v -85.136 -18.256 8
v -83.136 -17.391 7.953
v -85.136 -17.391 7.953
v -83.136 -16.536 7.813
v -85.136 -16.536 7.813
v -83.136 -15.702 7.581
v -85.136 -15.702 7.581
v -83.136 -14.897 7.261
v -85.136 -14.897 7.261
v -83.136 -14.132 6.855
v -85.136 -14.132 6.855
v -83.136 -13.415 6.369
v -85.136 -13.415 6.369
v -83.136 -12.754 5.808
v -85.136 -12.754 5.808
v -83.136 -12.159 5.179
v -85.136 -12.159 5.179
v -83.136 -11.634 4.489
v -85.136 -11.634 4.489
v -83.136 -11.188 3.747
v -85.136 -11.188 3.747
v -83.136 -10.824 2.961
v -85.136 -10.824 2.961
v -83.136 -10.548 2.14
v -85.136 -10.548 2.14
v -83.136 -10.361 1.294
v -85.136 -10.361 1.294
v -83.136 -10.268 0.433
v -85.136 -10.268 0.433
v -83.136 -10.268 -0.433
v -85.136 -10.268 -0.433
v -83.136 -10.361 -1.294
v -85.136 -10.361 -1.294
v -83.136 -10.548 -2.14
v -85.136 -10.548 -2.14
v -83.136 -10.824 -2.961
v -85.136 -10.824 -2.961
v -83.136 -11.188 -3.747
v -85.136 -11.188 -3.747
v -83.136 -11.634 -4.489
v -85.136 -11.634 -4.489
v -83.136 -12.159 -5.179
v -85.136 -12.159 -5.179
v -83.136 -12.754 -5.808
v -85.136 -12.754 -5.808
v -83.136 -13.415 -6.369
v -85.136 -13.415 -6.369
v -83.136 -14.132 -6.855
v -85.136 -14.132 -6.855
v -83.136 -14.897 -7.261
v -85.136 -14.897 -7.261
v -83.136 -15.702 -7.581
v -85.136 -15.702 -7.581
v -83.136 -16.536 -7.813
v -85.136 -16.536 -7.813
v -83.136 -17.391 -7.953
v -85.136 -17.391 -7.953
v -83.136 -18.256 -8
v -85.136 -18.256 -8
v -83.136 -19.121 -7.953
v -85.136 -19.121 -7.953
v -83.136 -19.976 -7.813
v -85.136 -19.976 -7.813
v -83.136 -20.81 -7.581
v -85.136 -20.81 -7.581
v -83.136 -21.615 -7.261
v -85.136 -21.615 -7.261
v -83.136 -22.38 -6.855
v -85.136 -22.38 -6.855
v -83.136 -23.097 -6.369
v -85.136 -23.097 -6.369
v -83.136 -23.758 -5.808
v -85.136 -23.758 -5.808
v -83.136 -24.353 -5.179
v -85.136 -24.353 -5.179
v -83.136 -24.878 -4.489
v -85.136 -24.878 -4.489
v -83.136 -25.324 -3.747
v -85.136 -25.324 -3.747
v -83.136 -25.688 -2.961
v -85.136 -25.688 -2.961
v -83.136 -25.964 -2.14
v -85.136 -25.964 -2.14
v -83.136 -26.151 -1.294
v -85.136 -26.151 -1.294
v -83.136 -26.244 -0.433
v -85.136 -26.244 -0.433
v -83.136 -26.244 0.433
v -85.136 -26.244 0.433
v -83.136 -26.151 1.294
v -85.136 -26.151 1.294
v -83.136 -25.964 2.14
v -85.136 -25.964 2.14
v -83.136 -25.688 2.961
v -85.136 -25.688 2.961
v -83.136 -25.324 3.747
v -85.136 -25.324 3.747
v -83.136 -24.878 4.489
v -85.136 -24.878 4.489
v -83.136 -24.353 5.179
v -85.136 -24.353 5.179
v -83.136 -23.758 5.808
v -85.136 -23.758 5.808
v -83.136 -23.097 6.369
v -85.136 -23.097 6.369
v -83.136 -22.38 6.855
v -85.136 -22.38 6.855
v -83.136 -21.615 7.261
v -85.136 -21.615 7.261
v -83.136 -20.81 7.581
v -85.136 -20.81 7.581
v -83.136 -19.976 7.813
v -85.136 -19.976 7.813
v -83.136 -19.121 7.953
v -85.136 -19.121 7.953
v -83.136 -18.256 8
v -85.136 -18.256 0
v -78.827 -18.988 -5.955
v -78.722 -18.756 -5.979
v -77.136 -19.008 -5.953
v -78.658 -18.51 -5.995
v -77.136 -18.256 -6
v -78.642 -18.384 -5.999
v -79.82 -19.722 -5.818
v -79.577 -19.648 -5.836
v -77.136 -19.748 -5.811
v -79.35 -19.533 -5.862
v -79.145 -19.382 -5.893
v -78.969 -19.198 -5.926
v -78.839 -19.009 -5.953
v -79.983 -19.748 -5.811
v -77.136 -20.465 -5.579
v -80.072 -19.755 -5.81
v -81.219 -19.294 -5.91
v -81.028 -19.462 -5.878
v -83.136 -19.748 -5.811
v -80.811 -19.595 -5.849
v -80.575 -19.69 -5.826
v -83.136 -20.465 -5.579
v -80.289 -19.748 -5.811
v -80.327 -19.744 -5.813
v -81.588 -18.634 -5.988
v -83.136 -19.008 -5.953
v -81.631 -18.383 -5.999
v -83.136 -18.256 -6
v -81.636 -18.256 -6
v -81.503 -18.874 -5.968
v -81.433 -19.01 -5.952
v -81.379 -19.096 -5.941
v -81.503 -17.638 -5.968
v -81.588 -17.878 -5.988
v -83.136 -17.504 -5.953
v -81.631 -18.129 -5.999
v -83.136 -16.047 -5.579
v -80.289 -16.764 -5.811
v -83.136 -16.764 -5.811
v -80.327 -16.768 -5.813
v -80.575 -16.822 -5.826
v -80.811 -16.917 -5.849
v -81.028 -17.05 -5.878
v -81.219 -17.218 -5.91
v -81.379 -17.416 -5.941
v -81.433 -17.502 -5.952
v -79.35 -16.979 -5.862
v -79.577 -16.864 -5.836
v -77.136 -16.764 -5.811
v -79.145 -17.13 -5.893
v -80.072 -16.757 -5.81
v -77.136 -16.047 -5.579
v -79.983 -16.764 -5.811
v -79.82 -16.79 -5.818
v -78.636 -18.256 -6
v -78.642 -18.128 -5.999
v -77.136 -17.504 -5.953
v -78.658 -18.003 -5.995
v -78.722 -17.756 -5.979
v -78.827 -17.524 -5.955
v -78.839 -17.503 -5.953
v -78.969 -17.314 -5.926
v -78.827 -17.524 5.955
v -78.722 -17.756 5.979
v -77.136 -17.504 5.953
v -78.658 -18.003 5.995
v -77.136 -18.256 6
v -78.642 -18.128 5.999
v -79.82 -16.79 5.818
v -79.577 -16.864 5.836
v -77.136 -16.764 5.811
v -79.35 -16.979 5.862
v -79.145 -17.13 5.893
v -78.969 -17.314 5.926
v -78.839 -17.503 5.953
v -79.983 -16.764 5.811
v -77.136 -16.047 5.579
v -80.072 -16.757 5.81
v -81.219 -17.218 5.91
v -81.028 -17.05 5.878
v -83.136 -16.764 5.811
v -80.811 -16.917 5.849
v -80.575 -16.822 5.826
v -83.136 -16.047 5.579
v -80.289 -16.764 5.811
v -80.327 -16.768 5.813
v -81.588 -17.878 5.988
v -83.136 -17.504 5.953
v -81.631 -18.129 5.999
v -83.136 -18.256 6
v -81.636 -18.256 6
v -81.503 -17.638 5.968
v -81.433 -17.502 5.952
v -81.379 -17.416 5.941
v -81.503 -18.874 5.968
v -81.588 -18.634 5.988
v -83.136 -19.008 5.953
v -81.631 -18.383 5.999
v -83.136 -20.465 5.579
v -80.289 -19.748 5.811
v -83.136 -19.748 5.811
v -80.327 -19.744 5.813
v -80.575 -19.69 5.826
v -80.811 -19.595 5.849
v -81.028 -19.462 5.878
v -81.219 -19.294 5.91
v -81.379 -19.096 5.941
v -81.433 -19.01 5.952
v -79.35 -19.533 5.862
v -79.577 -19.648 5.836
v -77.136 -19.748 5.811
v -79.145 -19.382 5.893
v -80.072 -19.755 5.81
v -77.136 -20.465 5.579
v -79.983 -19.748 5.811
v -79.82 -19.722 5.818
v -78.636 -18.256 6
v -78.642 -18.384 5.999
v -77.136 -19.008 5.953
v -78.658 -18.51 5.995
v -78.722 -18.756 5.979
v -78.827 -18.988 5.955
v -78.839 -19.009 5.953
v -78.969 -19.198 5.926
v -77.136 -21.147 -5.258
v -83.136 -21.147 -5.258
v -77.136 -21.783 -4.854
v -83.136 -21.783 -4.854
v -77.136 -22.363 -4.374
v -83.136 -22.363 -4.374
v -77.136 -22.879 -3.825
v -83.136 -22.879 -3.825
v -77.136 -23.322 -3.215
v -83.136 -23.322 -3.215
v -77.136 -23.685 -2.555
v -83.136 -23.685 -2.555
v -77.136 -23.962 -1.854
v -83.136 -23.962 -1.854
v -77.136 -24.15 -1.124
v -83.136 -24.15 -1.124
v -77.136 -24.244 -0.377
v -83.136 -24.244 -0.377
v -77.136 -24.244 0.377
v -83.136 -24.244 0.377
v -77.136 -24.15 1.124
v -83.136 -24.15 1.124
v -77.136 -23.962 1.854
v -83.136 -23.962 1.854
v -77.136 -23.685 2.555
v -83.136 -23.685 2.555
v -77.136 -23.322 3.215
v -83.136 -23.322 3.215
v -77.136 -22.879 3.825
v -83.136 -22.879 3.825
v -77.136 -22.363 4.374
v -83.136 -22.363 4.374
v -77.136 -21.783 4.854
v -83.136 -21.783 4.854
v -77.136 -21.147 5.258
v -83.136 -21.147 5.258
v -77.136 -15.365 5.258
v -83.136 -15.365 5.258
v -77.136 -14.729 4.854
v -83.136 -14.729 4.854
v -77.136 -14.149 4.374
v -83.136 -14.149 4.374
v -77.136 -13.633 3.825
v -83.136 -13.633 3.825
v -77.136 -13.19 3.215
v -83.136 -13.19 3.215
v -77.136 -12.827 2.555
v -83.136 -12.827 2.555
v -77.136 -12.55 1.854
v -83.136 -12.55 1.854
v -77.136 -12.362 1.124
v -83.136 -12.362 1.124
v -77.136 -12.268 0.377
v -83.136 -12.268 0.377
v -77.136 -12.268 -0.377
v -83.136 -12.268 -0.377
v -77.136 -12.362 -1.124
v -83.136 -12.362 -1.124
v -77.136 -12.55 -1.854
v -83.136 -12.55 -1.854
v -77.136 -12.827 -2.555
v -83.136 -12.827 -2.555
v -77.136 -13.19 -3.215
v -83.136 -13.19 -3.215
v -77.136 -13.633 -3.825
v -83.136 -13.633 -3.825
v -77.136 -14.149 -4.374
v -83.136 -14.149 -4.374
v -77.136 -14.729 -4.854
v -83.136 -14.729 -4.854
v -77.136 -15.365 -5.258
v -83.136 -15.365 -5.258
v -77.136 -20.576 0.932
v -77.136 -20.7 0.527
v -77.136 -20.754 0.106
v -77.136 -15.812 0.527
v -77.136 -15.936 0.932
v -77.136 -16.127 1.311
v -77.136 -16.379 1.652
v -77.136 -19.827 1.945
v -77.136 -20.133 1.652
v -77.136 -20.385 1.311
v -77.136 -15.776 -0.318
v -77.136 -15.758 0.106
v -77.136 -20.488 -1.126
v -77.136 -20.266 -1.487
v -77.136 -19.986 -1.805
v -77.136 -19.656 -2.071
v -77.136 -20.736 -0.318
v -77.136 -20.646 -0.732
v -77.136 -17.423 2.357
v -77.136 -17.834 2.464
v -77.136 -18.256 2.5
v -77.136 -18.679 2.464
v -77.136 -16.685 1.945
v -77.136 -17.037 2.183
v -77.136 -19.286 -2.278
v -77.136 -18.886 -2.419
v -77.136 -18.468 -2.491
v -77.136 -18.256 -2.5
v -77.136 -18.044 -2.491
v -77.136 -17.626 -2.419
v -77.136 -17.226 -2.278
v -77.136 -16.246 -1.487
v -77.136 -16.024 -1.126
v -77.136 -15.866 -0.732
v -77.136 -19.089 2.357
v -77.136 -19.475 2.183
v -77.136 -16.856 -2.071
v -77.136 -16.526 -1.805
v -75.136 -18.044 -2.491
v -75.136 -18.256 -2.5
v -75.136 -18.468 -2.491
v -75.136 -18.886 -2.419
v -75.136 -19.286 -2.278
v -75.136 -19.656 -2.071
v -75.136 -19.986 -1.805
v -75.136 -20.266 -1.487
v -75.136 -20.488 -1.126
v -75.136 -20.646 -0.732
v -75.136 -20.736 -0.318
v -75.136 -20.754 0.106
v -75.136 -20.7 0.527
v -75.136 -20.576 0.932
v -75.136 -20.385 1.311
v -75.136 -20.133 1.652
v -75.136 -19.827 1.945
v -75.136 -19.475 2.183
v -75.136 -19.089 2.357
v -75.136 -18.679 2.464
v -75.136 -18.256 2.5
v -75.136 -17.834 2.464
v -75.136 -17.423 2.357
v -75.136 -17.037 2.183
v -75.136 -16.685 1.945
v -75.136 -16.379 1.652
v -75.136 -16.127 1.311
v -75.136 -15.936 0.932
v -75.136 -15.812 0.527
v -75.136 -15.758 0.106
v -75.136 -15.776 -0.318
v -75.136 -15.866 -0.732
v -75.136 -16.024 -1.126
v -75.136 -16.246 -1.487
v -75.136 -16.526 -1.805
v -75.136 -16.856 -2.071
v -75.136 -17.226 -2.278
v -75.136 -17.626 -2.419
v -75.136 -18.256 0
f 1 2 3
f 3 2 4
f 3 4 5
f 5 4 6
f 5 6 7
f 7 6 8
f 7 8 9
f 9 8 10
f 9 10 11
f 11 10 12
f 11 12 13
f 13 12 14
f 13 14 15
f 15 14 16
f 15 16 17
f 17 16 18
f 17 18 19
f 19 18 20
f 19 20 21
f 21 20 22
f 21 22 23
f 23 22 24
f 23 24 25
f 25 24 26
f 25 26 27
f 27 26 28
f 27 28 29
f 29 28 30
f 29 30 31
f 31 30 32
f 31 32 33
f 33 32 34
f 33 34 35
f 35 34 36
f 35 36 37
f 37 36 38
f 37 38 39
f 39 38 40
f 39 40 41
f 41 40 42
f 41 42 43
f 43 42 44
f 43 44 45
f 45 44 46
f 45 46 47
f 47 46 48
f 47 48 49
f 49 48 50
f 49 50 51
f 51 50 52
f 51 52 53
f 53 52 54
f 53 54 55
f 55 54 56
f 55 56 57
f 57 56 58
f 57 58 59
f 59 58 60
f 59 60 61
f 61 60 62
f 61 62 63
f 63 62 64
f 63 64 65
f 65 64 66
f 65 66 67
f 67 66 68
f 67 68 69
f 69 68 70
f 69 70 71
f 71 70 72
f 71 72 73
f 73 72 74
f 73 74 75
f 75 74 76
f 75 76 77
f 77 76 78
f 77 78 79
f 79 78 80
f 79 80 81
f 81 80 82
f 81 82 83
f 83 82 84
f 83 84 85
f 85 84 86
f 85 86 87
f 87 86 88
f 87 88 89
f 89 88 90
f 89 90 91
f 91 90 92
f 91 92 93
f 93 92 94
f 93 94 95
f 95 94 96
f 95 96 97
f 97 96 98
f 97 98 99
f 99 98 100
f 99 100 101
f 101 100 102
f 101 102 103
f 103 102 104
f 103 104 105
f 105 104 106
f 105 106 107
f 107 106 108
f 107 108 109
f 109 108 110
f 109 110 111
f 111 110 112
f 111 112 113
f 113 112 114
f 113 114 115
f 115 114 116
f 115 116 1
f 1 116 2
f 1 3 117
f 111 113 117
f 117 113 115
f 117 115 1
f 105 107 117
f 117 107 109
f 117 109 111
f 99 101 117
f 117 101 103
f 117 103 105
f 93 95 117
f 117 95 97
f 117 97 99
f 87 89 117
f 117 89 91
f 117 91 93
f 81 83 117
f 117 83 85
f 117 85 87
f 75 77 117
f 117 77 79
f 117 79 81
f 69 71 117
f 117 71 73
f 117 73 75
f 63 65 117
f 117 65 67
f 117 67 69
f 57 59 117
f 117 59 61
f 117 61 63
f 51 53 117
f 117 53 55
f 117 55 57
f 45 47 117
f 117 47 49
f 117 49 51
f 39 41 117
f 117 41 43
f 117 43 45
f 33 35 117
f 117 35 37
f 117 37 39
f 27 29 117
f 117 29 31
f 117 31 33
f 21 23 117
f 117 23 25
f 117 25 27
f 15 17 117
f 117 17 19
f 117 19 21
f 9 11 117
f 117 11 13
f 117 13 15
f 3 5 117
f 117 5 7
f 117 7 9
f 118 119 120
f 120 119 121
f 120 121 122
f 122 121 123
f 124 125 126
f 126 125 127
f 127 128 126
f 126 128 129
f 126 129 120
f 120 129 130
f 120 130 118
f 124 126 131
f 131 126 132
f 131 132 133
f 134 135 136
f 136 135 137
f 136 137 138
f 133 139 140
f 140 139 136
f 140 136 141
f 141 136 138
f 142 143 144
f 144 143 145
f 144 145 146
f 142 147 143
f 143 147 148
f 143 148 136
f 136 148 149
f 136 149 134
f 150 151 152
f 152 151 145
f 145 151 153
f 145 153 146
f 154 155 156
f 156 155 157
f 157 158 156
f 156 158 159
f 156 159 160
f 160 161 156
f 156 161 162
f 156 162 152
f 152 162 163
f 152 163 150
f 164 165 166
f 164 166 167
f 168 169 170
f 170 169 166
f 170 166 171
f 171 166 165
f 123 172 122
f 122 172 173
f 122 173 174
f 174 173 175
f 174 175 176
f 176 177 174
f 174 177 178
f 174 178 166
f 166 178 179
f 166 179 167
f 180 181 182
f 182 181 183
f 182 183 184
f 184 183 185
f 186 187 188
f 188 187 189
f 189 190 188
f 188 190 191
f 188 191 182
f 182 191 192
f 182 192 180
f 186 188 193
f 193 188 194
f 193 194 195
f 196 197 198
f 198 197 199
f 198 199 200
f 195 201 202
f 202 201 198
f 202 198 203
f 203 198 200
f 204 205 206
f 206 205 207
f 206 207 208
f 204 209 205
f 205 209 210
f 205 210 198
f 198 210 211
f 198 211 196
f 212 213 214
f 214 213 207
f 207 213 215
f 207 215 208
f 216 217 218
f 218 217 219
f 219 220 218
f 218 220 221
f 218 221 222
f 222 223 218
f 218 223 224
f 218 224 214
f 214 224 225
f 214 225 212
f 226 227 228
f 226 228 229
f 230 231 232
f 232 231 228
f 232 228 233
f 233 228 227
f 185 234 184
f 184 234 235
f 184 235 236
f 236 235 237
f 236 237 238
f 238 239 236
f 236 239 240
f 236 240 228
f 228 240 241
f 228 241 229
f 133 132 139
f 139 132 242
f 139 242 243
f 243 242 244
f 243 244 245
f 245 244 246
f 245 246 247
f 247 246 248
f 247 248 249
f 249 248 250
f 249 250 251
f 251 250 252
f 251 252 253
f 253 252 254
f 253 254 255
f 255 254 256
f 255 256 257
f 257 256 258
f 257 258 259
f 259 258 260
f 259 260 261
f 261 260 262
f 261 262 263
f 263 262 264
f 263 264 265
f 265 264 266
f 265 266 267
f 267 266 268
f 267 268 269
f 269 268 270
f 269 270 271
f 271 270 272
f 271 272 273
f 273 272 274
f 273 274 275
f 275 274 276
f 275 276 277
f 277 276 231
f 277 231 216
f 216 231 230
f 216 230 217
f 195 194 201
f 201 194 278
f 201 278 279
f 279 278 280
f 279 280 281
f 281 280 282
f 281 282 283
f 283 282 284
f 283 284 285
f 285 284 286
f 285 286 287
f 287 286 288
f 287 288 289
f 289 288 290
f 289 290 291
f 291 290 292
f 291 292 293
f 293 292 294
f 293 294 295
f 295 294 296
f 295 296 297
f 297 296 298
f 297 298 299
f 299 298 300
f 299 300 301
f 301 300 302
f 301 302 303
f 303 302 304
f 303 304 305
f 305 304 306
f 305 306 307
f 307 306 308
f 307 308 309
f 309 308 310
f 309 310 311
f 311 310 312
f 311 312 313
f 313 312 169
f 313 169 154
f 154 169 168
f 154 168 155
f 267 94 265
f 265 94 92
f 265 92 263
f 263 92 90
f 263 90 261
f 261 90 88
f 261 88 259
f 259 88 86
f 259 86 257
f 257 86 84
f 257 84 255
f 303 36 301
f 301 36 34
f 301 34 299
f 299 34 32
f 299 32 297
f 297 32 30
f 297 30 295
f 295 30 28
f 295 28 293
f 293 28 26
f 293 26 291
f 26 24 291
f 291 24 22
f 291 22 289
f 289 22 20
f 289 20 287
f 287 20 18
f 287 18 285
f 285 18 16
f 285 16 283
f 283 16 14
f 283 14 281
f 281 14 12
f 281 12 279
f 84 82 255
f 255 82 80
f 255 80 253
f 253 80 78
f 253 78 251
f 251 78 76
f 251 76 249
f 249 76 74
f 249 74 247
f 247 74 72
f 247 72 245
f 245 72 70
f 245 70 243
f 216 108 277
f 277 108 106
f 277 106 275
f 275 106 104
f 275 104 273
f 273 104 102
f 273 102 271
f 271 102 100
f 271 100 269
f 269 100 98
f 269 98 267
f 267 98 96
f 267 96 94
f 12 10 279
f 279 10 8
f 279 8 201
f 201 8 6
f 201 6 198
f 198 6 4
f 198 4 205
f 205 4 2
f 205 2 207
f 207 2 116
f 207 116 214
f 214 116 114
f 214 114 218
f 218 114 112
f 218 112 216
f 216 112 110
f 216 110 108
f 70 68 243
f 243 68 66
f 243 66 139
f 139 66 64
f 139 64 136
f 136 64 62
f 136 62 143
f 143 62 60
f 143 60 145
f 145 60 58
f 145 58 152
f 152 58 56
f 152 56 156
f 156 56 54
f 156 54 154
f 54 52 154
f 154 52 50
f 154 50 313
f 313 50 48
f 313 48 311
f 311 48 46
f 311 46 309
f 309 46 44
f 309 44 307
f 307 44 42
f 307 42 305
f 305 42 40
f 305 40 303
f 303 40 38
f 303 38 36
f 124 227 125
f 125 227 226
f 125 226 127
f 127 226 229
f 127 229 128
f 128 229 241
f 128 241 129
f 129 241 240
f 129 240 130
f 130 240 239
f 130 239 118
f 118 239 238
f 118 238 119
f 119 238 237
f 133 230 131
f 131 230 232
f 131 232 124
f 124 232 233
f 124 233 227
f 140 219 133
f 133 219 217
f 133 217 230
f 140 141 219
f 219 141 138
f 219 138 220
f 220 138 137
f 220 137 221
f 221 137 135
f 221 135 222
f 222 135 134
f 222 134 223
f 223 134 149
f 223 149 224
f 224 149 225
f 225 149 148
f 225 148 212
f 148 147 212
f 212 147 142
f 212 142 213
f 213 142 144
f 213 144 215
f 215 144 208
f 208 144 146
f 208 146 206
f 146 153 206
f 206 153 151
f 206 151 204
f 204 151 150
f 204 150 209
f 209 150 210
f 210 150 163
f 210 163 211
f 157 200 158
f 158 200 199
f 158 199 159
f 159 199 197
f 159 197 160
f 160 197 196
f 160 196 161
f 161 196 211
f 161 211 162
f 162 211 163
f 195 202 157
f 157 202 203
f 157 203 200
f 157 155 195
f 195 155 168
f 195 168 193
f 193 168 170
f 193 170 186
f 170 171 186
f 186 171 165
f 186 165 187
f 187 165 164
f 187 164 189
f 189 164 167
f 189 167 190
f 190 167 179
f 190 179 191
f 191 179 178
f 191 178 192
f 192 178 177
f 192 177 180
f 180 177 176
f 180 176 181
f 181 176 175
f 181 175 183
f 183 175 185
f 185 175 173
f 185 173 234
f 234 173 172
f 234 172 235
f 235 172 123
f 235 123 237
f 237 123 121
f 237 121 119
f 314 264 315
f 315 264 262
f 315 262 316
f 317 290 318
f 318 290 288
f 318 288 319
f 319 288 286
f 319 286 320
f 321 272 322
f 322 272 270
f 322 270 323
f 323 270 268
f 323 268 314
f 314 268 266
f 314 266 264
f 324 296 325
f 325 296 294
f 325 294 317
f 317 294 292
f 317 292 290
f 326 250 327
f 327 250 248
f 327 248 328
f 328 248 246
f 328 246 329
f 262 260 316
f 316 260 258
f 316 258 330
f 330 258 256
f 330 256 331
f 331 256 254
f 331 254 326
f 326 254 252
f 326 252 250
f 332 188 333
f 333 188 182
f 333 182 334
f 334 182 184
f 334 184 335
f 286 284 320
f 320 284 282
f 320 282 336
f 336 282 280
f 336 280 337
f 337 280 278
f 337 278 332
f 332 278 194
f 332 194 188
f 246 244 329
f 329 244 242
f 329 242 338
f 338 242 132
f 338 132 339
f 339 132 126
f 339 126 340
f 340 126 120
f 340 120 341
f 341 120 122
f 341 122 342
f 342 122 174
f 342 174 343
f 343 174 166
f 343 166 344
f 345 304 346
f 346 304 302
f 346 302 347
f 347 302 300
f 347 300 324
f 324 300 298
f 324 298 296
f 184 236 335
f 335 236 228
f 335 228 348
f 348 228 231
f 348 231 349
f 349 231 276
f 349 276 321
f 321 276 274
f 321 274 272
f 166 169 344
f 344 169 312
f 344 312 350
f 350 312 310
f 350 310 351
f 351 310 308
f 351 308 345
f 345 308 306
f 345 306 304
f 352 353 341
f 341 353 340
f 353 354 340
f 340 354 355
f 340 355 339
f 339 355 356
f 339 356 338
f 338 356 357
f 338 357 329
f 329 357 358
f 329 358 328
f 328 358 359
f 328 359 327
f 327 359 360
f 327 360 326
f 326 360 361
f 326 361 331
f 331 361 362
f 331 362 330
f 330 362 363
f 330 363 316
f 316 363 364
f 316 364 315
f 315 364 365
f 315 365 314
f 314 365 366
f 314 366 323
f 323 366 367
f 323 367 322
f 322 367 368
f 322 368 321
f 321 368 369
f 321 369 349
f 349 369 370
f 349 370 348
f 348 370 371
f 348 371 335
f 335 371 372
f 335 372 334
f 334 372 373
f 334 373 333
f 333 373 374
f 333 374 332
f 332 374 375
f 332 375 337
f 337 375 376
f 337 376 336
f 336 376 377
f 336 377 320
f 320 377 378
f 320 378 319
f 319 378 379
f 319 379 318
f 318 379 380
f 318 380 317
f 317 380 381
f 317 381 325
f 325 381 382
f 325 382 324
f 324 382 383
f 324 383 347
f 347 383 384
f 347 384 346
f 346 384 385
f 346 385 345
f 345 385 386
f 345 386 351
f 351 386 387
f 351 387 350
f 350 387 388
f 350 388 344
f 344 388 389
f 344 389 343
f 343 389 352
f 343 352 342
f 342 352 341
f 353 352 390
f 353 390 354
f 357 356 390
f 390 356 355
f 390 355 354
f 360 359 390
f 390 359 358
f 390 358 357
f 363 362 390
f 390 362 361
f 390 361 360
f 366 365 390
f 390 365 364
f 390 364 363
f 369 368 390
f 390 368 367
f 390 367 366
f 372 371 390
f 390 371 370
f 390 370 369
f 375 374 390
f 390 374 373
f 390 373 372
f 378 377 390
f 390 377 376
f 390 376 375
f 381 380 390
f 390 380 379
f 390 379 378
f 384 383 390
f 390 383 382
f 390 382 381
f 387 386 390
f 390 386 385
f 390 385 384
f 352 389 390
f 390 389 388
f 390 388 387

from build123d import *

# Parameters (mm, degrees)
CUT_EXTRUDE2_DEPTH      = 90.451272324
CUT_EXTRUDE2_DEPTH_BACK = 90.451272324
SKETCH5_R               = 1.5
CUT_EXTRUDE3_START      = -2
SKETCH7_R               = 8
CUT_EXTRUDE3_DEPTH      = 2
BOSS_EXTRUDE1_START     = -2
SKETCH2_R               = 2.5
BOSS_EXTRUDE1_DEPTH     = 2


with BuildPart() as part:
    # Sketch1 → Revolve2 (revolve)
    with BuildSketch(Plane.XY, mode=Mode.PRIVATE) as revolve2_sk:
        Polygon((-85.136081821, -10.256002982), (-85.136081821, -18.256002982), (-75.136081821, -18.256002982), (-75.136081821, -10.256002982), (-77.136081821, -10.256002982), (-77.136081821, -12.256002982), (-83.136081821, -12.256002982), (-83.136081821, -10.256002982), align=None)
    revolve(revolve2_sk.sketch.rotate(Axis((-85.136081821, -18.256002982, 0), (1, 0, 0)), 90), axis=Axis((-85.136081821, -18.256002982, 0), (1, 0, 0)))

    # Sketch5 → Cut-Extrude2 (cut, two sides: drawn at the far end of the back side and taken through both)
    with BuildSketch(Plane.XY.offset(-CUT_EXTRUDE2_DEPTH_BACK)):
        with Locations((-80.136081821, -18.256002982)):
            Circle(SKETCH5_R)
    extrude(amount=CUT_EXTRUDE2_DEPTH + CUT_EXTRUDE2_DEPTH_BACK, mode=Mode.SUBTRACT)

    # Sketch7 → Cut-Extrude3 (cut)
    with BuildSketch(Plane(origin=(-75.136081821, 0, 0), x_dir=(0, 0, -1), z_dir=(1, 0, 0)).offset(CUT_EXTRUDE3_START)):
        with Locations(Location((0, -18.256002982, 0), (0, 0, 180))):
            Circle(SKETCH7_R)
    extrude(amount=CUT_EXTRUDE3_DEPTH, mode=Mode.SUBTRACT)

    # Sketch2 → Boss-Extrude1 (add)
    with BuildSketch(Plane(origin=(-75.136081821, 0, 0), x_dir=(0, 0, -1), z_dir=(1, 0, 0)).offset(BOSS_EXTRUDE1_START)):
        with Locations((0, -18.256002982)):
            Circle(SKETCH2_R)
    extrude(amount=BOSS_EXTRUDE1_DEPTH)


solid = part.part
